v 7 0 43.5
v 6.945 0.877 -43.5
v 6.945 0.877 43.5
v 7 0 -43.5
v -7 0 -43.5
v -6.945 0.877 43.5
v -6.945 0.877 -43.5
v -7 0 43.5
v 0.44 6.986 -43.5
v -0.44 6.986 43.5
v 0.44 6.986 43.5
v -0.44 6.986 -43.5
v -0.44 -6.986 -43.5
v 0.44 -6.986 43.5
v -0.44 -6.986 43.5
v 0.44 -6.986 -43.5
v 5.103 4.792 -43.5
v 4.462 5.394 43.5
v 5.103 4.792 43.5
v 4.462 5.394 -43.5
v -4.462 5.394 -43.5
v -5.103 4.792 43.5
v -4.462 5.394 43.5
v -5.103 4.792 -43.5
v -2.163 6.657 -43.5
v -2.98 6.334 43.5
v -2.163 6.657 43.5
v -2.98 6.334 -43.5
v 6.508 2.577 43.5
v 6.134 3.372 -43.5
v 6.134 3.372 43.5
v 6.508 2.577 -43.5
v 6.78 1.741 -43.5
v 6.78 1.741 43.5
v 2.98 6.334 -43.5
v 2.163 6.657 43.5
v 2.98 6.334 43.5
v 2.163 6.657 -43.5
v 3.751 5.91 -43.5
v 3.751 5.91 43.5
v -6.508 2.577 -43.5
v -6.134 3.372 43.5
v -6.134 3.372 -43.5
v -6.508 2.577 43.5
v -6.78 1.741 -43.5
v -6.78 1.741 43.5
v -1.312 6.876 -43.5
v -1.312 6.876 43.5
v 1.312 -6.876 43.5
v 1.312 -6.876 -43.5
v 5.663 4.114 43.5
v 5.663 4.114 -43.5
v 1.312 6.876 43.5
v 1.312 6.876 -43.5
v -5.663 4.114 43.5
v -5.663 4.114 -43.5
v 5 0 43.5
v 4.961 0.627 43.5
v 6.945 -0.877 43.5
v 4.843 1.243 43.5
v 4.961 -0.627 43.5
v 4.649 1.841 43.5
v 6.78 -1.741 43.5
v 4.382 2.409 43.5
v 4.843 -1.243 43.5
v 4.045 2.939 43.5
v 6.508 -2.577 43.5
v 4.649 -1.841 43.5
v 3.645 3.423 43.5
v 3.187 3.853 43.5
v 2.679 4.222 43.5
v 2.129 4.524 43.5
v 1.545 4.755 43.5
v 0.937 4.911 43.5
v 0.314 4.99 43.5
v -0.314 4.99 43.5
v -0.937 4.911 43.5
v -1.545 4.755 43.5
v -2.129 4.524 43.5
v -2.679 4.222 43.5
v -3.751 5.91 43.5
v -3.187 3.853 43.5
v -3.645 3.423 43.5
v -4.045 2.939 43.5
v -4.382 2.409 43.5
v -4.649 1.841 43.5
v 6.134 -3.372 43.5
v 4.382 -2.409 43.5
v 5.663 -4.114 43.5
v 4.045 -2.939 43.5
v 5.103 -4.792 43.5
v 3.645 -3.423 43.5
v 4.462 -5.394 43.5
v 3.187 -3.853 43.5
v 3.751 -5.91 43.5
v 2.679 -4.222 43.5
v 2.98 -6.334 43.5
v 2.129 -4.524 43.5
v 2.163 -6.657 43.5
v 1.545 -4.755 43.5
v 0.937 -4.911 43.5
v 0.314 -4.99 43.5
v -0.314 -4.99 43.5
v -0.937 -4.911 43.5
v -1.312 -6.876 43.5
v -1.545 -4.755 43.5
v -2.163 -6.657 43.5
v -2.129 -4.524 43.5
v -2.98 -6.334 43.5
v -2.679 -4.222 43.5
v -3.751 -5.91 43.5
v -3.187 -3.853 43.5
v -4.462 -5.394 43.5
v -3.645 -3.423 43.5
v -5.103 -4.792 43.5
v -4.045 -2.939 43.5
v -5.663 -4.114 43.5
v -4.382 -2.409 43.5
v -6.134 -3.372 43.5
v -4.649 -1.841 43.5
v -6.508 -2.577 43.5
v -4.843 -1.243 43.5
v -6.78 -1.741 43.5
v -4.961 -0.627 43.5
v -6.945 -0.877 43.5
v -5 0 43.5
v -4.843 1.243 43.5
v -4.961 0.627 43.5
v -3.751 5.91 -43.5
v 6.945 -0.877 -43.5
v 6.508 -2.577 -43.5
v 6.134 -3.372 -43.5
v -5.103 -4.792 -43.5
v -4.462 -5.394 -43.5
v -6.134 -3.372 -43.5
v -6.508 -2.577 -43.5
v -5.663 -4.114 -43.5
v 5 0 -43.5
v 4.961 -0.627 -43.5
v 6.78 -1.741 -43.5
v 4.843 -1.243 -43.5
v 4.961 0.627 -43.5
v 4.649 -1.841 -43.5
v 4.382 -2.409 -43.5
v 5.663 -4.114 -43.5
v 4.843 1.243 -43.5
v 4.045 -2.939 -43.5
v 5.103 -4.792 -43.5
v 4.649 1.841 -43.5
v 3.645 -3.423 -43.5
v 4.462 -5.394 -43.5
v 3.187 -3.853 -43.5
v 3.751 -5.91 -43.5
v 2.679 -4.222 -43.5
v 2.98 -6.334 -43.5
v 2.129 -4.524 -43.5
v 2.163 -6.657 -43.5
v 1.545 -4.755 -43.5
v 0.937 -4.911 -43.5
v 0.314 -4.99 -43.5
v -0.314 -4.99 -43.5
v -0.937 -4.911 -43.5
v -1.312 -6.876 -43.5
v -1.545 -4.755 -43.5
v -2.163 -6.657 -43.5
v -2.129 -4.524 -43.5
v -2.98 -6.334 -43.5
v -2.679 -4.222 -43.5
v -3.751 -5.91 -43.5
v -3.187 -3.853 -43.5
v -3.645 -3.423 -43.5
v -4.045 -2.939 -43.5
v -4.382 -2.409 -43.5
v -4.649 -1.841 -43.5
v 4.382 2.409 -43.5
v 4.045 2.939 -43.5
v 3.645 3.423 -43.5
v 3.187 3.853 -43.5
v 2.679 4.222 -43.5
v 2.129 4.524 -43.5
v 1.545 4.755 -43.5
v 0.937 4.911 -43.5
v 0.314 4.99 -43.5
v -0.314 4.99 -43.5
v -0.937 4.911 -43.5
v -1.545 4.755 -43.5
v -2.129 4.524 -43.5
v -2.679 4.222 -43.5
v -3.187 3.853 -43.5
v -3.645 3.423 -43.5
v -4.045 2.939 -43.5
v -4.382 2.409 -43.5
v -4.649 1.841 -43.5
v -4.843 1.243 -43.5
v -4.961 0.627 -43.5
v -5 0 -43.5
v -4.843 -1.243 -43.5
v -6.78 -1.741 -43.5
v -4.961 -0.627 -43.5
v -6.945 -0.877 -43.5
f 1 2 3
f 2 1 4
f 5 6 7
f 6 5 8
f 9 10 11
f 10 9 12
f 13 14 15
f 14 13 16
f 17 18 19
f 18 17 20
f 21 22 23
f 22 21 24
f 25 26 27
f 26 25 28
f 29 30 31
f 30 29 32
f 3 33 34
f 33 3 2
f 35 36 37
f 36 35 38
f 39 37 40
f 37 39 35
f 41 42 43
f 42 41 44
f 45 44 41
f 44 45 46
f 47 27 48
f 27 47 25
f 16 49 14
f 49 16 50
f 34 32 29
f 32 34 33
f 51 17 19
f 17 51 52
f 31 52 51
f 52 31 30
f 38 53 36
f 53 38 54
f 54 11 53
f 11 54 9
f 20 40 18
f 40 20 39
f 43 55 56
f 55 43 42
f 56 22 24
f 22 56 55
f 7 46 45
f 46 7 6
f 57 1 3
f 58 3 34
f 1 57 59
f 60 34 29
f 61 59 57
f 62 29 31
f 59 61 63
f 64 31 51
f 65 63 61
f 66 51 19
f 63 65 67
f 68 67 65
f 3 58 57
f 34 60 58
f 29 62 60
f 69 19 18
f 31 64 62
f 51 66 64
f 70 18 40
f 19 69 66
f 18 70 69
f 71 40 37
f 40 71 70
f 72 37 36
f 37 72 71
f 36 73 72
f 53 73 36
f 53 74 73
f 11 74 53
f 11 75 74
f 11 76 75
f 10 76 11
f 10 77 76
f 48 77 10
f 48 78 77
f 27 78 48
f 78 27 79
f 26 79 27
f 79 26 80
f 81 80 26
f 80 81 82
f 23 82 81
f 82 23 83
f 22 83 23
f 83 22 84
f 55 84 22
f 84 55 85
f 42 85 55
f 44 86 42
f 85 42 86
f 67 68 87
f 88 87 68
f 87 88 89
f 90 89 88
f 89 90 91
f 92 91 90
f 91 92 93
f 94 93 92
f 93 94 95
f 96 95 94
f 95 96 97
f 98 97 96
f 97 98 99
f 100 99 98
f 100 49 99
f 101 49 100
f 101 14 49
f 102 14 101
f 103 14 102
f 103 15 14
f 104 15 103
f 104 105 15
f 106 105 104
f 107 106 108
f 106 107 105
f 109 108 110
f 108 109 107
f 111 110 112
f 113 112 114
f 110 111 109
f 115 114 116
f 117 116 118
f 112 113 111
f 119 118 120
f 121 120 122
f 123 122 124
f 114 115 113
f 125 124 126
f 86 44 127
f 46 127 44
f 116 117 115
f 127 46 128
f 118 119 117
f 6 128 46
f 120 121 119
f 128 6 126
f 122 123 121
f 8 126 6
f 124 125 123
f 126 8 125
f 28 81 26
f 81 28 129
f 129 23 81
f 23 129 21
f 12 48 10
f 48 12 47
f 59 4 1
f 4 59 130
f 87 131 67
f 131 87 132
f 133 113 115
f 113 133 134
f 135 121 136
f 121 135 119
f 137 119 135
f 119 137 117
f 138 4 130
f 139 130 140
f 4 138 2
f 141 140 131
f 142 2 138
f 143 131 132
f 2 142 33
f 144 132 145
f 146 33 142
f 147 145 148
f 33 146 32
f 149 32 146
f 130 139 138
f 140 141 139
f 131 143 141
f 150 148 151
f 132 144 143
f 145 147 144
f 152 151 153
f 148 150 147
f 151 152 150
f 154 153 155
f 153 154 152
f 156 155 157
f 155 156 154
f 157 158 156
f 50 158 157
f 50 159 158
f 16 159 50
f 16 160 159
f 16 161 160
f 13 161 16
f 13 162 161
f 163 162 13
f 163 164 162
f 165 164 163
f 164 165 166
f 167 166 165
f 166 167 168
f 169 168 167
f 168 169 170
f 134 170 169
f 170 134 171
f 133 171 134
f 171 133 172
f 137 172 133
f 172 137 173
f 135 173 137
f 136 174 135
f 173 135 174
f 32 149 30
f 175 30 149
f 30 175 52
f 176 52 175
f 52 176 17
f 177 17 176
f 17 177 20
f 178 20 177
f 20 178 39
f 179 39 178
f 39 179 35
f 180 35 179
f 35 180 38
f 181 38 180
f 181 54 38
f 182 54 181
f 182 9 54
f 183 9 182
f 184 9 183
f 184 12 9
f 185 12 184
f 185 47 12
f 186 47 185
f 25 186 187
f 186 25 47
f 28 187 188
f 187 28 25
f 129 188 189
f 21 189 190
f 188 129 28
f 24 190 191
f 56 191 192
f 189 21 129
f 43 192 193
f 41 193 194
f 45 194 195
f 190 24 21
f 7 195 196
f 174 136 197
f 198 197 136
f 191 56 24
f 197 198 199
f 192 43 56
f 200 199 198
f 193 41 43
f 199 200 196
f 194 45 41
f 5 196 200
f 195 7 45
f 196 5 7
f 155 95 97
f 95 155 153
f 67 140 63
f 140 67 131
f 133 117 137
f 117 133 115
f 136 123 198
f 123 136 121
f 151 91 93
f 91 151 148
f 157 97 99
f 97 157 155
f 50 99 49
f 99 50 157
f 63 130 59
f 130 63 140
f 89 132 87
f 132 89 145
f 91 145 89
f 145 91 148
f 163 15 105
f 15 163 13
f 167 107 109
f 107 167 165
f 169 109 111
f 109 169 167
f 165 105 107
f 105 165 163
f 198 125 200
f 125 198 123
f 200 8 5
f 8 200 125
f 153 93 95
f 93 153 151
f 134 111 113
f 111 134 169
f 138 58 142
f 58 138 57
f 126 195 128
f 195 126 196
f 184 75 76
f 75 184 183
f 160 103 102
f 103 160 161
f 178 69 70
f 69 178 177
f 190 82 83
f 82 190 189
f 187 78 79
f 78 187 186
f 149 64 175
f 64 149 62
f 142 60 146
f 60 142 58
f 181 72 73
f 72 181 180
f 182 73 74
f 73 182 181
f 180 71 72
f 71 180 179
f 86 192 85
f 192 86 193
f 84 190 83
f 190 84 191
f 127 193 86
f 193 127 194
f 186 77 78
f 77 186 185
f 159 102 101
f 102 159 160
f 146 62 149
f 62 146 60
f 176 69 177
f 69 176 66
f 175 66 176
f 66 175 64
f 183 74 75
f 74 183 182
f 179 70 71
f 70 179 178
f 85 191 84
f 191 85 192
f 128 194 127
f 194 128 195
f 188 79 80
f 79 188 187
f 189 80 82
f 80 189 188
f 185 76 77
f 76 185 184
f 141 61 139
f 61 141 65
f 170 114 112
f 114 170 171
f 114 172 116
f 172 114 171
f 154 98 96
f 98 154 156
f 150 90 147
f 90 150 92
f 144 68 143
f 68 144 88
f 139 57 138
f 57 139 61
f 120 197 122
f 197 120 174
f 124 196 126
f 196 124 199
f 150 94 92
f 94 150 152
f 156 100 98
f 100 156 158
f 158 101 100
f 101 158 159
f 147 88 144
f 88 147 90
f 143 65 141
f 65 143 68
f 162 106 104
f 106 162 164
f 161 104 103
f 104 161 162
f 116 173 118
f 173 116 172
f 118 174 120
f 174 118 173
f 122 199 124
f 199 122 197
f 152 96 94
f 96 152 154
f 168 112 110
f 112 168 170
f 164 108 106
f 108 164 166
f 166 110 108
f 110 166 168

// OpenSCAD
$fn = 50;


difference() {
	union() {
		translate(v = [0, 0, -43.5000000000]) {
			cylinder(h = 87, r = 7.0000000000);
		}
	}
	union() {
		translate(v = [0, 0, -100.0000000000]) {
			cylinder(h = 200, r = 5.0000000000);
		}
	}
}
